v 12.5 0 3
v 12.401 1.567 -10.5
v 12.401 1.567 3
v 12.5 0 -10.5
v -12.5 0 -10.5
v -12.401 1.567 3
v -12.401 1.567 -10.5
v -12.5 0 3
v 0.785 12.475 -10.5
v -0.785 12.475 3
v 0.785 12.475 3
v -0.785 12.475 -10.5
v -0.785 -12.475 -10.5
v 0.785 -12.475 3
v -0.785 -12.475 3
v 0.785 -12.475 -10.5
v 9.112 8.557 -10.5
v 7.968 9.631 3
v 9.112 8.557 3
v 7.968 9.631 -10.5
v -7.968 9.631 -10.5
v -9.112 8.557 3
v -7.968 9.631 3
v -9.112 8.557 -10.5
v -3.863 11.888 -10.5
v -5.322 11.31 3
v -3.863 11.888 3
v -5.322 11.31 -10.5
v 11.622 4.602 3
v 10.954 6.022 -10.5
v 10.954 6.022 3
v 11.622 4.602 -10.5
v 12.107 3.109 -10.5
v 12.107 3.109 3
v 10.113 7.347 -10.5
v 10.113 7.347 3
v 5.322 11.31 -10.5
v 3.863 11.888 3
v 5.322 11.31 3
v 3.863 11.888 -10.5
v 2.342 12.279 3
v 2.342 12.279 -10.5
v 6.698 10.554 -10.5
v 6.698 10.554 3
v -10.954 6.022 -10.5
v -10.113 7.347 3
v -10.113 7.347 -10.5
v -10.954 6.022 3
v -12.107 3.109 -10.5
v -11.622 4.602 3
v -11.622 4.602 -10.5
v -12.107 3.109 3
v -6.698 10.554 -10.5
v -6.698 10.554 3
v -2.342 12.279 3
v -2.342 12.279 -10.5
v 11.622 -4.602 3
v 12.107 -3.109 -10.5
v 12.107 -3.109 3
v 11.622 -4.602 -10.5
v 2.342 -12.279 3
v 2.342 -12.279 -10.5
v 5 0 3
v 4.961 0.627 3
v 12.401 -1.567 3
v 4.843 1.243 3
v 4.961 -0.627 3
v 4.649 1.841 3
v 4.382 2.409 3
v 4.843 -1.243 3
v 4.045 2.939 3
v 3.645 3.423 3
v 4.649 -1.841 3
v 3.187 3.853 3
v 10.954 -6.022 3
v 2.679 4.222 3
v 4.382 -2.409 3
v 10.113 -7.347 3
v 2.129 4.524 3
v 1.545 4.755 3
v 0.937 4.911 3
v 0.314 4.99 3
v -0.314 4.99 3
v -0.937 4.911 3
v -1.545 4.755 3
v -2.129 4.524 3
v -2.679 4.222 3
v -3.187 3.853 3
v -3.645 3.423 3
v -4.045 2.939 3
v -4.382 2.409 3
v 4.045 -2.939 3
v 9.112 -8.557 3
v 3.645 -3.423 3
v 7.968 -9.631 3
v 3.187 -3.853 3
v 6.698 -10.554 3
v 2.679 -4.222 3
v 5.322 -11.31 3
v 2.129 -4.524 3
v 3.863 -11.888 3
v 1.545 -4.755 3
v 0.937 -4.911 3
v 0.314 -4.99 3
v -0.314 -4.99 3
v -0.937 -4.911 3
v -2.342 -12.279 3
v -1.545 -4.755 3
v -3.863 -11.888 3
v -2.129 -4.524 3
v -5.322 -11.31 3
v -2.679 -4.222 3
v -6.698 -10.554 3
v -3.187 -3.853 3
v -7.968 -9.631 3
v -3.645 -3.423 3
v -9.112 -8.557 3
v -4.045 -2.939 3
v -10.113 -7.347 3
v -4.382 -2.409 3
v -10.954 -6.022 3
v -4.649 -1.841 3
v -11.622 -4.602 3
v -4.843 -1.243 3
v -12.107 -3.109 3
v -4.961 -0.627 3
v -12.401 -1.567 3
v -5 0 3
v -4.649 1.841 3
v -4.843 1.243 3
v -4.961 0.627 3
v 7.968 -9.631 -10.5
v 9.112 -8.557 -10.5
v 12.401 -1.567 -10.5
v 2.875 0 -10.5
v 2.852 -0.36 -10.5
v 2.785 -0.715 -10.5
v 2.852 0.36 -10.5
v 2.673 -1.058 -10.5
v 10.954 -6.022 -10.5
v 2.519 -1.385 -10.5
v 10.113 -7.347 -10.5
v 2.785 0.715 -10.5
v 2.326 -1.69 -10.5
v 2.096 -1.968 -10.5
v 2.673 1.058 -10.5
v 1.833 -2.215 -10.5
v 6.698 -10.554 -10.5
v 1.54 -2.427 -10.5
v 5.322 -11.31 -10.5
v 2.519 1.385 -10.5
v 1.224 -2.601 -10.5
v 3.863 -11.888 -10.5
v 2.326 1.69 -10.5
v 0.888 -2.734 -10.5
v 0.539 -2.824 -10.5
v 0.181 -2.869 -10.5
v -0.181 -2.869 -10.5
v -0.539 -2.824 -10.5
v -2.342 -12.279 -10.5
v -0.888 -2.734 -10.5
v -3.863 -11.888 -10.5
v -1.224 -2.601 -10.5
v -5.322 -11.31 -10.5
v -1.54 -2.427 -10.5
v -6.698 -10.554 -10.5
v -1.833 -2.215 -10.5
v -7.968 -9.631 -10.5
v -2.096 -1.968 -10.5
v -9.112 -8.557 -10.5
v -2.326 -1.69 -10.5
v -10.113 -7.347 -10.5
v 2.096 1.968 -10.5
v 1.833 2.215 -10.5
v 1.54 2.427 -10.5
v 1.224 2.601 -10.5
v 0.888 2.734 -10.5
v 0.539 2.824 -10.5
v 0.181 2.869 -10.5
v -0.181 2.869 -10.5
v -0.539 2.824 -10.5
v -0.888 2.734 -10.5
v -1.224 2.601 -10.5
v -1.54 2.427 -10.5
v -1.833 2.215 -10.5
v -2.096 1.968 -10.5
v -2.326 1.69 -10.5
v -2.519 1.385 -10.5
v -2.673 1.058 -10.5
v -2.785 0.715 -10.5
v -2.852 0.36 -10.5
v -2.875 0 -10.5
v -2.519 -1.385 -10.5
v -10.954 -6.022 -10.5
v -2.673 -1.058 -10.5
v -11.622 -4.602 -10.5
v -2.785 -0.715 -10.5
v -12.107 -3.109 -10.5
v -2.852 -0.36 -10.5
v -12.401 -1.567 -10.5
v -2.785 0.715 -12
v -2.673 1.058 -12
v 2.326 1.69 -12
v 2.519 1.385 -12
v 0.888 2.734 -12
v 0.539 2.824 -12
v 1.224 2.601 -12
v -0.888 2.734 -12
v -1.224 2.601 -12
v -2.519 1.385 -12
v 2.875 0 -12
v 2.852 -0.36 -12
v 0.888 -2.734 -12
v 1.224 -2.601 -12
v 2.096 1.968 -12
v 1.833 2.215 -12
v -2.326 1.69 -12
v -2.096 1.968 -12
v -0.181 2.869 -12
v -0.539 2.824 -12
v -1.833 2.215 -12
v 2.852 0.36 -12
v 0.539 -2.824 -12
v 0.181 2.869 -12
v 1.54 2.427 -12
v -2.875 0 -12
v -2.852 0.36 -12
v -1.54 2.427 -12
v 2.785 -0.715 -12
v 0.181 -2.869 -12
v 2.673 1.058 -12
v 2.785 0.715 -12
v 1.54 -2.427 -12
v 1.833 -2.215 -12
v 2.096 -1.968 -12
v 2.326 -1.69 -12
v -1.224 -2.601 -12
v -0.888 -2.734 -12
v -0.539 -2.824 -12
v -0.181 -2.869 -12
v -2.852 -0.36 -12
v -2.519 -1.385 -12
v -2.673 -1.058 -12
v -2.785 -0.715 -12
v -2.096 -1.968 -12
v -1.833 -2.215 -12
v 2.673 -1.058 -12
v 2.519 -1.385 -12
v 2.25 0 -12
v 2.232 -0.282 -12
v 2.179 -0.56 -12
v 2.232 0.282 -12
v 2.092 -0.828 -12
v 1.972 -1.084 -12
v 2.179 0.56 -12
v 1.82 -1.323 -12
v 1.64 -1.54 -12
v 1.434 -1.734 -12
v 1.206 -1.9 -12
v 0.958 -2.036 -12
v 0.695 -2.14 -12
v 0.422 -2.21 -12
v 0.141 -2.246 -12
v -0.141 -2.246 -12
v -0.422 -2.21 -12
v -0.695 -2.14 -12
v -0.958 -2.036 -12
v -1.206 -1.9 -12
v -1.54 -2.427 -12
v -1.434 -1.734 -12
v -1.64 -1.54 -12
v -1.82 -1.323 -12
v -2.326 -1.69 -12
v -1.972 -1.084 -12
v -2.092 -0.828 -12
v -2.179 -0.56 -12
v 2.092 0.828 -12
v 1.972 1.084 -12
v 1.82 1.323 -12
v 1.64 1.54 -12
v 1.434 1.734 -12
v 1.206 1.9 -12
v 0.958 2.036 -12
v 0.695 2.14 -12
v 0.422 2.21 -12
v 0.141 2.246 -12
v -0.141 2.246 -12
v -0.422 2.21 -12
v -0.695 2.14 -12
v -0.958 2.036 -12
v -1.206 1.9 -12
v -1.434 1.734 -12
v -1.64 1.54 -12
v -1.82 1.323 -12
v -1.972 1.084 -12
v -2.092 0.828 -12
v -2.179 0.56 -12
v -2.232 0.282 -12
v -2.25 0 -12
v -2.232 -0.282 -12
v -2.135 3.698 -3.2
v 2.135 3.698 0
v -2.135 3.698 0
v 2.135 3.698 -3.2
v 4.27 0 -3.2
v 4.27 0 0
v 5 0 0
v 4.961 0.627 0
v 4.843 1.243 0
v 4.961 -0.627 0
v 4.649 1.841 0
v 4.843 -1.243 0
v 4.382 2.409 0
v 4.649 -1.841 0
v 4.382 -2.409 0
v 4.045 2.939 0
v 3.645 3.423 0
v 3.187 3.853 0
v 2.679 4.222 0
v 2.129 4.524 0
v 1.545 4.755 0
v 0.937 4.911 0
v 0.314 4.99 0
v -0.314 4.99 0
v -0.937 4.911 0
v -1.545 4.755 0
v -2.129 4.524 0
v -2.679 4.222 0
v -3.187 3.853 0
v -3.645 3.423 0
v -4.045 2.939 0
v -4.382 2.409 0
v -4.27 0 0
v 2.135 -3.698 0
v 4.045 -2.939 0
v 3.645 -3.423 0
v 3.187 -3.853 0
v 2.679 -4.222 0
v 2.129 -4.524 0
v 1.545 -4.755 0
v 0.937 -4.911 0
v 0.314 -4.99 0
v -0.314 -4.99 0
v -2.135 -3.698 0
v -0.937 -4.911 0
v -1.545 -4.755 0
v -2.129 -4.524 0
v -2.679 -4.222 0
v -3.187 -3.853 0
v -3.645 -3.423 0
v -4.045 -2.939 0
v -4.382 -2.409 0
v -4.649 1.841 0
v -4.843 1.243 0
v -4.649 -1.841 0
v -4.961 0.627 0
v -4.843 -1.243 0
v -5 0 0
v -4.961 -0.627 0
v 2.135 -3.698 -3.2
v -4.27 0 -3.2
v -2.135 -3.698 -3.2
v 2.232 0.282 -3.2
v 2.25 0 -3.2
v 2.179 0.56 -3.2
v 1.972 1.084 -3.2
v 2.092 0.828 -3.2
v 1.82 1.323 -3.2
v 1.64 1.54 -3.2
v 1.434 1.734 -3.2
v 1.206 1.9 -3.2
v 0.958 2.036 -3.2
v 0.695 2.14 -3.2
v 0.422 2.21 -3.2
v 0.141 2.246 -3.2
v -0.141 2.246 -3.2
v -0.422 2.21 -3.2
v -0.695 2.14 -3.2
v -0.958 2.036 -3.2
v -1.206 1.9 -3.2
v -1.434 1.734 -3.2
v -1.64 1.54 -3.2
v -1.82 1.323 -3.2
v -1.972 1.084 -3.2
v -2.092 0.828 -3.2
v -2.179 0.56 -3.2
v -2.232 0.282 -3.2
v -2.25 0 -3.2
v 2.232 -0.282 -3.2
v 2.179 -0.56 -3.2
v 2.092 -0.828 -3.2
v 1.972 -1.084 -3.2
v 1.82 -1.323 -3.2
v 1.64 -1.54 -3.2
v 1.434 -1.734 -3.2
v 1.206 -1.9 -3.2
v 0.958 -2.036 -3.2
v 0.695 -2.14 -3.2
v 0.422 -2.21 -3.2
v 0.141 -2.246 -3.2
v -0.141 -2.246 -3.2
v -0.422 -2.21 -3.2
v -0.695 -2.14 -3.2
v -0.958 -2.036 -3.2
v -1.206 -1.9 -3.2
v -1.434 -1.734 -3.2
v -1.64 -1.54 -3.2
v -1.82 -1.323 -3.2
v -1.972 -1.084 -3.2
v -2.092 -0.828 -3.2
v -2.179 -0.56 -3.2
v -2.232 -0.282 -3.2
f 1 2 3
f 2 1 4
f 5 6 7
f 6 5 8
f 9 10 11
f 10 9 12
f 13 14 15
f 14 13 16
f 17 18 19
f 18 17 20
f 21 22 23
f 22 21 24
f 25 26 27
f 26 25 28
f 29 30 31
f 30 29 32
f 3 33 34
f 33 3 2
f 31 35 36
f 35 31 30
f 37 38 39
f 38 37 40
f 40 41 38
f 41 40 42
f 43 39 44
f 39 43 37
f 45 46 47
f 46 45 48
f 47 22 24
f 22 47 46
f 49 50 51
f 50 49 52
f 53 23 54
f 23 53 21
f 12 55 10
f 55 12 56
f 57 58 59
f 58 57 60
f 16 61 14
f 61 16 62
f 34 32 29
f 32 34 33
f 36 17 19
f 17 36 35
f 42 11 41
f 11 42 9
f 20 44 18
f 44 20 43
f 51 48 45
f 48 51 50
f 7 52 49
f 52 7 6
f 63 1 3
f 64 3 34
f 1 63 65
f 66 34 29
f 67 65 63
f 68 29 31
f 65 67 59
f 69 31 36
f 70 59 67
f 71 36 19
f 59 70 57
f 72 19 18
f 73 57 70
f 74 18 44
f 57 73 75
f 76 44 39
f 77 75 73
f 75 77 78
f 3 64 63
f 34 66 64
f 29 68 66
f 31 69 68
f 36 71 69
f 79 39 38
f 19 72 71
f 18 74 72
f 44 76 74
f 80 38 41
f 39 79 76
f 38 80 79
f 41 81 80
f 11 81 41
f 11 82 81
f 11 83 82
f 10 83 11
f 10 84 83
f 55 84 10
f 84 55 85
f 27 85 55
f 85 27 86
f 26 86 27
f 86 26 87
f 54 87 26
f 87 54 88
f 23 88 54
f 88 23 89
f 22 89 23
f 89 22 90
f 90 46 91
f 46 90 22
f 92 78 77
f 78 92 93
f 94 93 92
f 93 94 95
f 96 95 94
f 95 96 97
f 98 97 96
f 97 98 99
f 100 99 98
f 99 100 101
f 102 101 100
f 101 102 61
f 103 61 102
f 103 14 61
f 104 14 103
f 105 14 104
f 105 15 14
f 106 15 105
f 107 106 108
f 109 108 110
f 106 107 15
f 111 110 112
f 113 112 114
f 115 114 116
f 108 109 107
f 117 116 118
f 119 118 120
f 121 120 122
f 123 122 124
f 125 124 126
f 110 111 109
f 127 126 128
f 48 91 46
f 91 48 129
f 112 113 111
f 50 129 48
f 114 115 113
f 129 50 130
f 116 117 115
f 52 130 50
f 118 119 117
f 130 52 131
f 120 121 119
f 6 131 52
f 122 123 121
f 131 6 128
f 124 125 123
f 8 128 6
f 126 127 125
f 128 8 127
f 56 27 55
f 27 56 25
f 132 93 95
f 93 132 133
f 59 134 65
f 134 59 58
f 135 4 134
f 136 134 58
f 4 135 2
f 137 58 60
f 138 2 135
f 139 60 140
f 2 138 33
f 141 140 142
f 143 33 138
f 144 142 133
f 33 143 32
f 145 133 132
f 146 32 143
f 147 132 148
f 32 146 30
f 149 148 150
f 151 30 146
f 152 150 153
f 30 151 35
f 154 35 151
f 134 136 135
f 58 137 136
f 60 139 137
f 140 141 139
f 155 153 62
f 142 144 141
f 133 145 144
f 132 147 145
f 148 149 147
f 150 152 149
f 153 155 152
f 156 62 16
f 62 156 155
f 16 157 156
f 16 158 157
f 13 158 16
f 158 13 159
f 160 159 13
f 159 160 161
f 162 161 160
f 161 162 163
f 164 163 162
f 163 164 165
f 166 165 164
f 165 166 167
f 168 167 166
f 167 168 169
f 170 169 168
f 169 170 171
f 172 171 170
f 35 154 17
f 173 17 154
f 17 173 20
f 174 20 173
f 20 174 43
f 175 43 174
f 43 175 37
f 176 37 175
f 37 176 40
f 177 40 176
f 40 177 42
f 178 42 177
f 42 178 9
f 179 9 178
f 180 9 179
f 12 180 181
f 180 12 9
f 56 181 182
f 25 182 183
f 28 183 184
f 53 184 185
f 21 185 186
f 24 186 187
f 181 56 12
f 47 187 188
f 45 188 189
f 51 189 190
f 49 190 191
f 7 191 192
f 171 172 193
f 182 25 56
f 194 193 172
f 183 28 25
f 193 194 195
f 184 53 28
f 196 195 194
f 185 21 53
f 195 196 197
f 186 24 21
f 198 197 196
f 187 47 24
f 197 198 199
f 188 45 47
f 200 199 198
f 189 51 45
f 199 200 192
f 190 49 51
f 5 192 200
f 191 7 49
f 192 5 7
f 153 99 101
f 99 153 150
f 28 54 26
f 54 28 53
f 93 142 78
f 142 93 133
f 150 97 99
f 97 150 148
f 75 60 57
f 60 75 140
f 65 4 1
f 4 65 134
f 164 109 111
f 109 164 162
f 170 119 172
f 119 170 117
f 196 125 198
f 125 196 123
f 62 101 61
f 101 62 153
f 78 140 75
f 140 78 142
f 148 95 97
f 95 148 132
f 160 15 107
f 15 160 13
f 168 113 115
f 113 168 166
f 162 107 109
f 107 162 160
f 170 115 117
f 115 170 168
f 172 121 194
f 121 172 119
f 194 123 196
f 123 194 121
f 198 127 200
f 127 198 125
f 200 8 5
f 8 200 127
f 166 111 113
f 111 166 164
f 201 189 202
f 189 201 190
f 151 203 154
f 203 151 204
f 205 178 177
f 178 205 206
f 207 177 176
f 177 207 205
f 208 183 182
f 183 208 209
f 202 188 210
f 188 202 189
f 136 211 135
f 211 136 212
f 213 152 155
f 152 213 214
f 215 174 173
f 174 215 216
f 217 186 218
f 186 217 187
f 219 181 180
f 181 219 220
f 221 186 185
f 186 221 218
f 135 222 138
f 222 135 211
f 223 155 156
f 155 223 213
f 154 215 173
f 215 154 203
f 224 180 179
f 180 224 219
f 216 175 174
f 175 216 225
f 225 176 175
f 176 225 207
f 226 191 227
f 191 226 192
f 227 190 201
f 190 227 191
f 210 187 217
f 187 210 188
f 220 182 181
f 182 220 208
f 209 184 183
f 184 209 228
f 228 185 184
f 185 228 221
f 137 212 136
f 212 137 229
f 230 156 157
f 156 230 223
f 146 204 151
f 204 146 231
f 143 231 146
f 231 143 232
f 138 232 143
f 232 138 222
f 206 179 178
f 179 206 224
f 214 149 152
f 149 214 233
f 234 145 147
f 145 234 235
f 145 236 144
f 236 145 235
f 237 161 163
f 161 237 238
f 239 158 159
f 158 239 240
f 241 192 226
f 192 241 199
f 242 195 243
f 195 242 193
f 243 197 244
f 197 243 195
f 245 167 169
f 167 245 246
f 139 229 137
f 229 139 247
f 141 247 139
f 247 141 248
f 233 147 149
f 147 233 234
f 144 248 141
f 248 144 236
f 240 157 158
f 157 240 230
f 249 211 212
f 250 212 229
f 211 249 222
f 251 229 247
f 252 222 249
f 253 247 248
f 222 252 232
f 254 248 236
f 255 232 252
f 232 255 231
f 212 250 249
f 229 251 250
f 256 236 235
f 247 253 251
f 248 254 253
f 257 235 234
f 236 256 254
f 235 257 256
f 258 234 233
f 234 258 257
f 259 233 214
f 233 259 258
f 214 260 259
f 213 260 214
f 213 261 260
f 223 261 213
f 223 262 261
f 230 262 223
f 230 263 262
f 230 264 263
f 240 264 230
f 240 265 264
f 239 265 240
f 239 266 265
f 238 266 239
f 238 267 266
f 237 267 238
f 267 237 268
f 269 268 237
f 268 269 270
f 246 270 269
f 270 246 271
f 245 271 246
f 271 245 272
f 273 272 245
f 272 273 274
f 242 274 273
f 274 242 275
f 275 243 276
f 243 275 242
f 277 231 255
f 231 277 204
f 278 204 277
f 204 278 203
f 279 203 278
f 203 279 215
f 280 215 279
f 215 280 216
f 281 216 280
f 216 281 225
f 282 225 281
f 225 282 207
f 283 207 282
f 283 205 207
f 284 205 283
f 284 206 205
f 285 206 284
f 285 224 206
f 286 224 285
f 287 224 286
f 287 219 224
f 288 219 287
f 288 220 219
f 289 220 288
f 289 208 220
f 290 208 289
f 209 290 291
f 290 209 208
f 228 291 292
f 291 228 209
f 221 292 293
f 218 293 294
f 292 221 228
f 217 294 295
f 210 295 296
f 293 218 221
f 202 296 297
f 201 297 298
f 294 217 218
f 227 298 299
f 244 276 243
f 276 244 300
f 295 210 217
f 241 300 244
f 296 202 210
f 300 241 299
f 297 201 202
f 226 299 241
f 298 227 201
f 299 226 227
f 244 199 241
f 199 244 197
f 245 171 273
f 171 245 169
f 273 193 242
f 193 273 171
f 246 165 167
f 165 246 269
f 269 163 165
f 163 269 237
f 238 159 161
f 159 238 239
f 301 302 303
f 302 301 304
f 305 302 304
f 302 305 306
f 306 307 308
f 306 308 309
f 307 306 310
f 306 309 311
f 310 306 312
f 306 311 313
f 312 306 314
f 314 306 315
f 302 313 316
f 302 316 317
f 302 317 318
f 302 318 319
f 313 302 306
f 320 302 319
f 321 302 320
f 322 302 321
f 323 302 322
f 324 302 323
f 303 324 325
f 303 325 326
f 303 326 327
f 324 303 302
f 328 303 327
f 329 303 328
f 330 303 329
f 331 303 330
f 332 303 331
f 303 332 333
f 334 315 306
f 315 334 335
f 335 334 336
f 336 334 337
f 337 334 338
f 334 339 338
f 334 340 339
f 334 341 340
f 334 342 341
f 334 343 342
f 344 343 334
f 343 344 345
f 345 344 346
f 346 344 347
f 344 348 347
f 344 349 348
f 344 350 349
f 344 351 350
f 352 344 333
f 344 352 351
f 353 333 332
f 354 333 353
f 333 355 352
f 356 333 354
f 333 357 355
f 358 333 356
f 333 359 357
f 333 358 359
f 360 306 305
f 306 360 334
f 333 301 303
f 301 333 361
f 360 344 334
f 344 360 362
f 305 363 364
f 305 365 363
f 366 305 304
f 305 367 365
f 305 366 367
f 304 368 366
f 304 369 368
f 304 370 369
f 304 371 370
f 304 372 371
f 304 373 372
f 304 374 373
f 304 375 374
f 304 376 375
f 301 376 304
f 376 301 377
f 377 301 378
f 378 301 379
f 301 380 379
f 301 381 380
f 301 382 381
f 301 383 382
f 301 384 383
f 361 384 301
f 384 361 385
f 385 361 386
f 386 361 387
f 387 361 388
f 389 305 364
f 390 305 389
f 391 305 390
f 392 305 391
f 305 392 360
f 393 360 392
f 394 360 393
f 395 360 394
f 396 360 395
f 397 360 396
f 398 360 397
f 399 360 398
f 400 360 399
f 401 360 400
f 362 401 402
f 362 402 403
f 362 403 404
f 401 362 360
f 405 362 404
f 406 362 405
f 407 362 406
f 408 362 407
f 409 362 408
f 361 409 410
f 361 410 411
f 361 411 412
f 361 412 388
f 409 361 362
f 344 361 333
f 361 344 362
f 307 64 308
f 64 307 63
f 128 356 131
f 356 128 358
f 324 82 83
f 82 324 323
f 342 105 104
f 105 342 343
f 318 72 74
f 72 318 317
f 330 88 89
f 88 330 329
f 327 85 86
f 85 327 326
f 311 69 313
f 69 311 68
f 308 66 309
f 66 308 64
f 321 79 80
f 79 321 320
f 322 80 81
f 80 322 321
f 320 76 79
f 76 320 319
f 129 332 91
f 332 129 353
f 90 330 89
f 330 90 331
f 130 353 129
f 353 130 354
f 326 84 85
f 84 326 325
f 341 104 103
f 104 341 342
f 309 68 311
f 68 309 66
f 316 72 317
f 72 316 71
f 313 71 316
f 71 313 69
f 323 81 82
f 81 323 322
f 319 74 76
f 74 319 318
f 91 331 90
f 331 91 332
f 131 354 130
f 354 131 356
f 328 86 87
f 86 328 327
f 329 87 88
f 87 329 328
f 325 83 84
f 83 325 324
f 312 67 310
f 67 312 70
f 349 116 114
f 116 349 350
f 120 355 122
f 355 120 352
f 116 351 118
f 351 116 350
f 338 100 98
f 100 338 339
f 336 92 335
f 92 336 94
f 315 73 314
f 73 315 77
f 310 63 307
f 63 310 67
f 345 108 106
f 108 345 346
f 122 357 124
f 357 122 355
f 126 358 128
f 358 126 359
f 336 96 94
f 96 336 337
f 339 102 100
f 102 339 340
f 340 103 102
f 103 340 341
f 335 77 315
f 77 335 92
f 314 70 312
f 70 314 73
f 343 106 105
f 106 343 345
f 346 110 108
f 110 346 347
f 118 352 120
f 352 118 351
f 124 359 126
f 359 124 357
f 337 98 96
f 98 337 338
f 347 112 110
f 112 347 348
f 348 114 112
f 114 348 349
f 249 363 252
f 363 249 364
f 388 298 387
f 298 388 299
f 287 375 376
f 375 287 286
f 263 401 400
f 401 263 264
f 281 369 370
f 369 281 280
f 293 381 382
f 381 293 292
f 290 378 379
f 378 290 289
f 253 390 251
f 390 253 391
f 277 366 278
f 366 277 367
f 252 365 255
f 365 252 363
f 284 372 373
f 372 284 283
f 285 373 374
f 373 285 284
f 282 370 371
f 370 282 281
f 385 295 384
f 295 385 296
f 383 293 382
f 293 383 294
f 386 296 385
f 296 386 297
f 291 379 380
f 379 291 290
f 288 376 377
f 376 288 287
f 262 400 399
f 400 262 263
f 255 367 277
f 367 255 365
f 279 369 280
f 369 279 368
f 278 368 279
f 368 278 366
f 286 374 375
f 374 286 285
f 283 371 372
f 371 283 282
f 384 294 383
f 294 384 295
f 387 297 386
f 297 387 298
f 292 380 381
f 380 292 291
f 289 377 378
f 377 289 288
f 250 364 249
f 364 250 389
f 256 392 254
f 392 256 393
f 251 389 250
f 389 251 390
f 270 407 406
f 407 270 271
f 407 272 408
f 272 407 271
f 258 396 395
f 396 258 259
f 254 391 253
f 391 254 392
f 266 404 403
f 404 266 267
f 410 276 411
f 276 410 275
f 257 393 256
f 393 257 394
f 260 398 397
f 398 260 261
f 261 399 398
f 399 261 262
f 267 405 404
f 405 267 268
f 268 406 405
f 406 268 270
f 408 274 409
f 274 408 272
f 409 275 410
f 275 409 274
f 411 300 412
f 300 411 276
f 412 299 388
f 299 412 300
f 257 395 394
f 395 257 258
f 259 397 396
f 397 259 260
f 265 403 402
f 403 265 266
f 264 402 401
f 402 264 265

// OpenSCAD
$fn = 50;


difference() {
	union() {
		translate(v = [0, 0, -10.5000000000]) {
			cylinder(h = 13.5000000000, r = 12.5000000000);
		}
		#translate(v = [0, 0, -12.0000000000]) {
			cylinder(h = 12, r = 2.8750000000);
		}
	}
	union() {
		translate(v = [0, 0, 0]) {
			rotate(a = [0, 0, 0]) {
				difference() {
					union() {
						translate(v = [0, 0, -3.2000000000]) {
							linear_extrude(height = 3.2000000000) {
								polygon(points = [[4.2698000000, 0.0000000000], [2.1349000000, 3.6977552691], [-2.1349000000, 3.6977552691], [-4.2698000000, 0.0000000000], [-2.1349000000, -3.6977552691], [2.1349000000, -3.6977552691]]);
							}
						}
					}
					union();
				}
			}
		}
		#cylinder(h = 3, r = 5.0000000000);
		#translate(v = [0, 0, -100.0000000000]) {
			cylinder(h = 200, r = 2.2500000000);
		}
	}
}
